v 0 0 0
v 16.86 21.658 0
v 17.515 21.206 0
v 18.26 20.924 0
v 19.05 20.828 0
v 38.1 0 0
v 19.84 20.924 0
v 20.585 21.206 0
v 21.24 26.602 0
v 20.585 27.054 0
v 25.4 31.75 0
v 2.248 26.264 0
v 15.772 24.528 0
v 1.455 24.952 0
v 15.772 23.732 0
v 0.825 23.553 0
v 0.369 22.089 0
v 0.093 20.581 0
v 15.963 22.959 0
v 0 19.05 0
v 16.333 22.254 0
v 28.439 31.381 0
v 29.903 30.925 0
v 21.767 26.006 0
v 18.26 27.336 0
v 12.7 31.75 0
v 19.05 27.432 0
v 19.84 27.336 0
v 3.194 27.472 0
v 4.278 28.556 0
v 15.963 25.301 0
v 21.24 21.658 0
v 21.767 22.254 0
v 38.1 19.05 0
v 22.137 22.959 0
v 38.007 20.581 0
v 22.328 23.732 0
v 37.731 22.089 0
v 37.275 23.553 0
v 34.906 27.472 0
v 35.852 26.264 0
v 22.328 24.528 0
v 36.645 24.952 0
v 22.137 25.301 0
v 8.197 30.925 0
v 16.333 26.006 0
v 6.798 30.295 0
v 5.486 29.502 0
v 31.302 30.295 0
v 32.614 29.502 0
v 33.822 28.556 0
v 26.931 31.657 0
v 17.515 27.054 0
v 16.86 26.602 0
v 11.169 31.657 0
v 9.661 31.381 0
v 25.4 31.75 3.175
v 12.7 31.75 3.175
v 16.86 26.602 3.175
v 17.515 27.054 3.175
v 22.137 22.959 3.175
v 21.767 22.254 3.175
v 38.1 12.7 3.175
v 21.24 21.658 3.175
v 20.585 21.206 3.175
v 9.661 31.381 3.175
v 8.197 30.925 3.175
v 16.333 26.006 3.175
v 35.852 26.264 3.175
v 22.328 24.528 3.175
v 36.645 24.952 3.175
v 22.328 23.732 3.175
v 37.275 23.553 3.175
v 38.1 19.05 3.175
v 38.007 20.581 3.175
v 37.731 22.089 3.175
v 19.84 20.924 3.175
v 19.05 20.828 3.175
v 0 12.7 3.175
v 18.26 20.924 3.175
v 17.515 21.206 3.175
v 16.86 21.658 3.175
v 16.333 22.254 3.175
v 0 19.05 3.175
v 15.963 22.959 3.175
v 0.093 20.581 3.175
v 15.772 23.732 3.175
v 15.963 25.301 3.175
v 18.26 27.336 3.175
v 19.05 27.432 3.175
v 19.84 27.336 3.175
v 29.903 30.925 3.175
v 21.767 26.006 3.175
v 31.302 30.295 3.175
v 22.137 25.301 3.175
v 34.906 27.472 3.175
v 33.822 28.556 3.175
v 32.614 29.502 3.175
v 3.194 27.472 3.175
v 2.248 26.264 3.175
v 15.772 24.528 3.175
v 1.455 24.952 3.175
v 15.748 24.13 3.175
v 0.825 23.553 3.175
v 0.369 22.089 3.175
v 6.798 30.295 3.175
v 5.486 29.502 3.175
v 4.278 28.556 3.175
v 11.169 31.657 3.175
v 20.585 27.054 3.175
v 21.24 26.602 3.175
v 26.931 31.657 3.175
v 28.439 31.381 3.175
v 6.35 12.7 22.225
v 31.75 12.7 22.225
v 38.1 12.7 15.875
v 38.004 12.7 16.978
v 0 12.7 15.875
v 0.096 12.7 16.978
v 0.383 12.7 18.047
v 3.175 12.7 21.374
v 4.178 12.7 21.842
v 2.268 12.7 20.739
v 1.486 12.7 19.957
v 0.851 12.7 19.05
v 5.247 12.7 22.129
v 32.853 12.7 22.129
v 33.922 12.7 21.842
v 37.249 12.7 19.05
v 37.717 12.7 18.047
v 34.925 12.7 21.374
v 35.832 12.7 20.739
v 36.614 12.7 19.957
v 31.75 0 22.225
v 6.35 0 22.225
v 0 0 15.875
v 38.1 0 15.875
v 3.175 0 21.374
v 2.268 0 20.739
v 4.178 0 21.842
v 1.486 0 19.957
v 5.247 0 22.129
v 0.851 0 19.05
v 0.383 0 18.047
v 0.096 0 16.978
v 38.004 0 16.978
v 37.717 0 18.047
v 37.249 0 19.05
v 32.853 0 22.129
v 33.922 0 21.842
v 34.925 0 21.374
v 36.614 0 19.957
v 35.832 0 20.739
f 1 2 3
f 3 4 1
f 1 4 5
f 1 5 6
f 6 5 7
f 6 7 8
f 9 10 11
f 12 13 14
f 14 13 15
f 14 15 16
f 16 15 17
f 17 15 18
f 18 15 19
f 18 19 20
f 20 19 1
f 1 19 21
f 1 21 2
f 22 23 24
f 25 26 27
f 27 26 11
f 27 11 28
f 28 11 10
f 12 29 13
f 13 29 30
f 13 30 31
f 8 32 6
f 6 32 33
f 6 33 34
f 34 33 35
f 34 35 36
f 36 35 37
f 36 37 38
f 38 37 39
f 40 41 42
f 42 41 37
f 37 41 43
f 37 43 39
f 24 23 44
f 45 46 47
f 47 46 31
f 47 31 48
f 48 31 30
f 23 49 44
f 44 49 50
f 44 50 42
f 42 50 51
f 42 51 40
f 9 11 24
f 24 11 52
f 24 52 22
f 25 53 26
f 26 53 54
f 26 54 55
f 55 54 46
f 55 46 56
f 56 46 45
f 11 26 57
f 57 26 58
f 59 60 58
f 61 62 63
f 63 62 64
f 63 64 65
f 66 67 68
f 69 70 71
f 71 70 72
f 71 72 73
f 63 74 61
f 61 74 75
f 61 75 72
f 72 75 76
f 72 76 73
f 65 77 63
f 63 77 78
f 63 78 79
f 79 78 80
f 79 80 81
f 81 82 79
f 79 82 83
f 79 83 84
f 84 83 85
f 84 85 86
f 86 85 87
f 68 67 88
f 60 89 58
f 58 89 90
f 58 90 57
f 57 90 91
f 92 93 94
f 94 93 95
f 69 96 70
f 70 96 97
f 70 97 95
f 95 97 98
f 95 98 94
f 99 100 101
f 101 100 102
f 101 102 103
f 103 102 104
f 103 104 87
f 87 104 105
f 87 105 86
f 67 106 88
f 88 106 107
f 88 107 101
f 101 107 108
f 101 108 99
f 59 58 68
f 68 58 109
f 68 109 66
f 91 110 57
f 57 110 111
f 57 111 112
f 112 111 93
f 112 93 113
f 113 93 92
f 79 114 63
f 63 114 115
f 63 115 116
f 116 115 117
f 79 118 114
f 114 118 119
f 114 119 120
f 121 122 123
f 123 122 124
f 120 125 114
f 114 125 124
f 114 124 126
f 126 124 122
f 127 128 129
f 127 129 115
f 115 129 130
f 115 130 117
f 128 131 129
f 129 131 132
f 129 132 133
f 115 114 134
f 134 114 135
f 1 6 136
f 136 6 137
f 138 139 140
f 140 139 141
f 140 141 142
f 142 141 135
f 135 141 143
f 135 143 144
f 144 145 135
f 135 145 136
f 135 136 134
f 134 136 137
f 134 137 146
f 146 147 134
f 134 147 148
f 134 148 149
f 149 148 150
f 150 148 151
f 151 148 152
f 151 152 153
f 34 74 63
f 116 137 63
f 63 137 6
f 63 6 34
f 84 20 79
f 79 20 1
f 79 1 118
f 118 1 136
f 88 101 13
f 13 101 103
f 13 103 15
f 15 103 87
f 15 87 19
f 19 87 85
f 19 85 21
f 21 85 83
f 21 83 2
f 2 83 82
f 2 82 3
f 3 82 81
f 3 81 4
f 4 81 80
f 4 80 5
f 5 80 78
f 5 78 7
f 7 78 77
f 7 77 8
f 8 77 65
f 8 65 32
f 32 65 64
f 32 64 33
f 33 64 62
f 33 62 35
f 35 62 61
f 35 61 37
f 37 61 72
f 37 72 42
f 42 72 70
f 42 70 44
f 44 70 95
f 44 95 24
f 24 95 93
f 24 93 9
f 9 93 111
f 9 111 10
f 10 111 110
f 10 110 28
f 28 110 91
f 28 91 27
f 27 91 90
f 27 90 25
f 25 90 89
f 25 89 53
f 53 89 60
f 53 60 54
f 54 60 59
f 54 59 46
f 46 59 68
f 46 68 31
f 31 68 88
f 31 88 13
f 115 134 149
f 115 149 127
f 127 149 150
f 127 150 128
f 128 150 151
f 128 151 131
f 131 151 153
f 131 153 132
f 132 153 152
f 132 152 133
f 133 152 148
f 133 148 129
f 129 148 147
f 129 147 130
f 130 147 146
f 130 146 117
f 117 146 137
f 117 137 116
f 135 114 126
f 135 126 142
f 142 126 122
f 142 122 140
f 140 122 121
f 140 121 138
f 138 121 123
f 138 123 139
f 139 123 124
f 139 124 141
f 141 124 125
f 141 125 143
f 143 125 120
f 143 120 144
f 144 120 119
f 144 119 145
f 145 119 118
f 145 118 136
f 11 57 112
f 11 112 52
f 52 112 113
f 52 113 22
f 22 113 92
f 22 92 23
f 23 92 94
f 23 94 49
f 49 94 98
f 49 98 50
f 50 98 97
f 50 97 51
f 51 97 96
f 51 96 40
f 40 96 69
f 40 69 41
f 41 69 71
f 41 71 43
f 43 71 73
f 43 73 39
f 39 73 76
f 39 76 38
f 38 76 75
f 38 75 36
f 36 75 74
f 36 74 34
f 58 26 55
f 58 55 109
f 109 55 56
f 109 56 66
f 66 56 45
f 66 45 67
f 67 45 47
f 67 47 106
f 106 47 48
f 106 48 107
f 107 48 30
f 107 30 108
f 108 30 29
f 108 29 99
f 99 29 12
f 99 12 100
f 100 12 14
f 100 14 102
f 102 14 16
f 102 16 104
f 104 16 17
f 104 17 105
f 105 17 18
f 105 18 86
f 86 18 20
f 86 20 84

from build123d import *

# Parameters (mm, degrees)
BOSS_EXTRUDE1_DEPTH = 38.1
SKETCH3_R           = 3.302
CUT_EXTRUDE1_DEPTH  = 23.225
FILLET1_R           = 6.35
FILLET2_R           = 12.7


with BuildPart() as part:
    # Sketch1 → Boss-Extrude1 (new body)
    with BuildSketch(Plane(origin=(0, 0, 0), x_dir=(0, 0, -1), z_dir=(1, 0, 0))):
        Polygon((0, 0), (-22.225, 0), (-22.225, 12.7), (-3.175, 12.7), (-3.175, 31.75), (0, 31.75), align=None)
    extrude(amount=BOSS_EXTRUDE1_DEPTH)

    # Sketch3 → Cut-Extrude1 (cut, through all)
    with BuildSketch(Plane(origin=(0, 0, 0), x_dir=(-1, 0, 0), z_dir=(0, 0, -1))):
        with Locations((-19.05, 24.13)):
            Circle(SKETCH3_R)
    extrude(amount=-CUT_EXTRUDE1_DEPTH, mode=Mode.SUBTRACT)

    # Fillet1
    fillet1_edges = [part.edges().sort_by_distance(p)[0] for p in [
        (38.1, 6.35, 22.225),
        (0, 6.35, 22.225),
    ]]
    fillet(fillet1_edges, radius=FILLET1_R)

    # Fillet2
    fillet2_edges = [part.edges().sort_by_distance(p)[0] for p in [
        (0, 31.75, 1.5875),
        (38.1, 31.75, 1.5875),
    ]]
    fillet(fillet2_edges, radius=FILLET2_R)


solid = part.part
